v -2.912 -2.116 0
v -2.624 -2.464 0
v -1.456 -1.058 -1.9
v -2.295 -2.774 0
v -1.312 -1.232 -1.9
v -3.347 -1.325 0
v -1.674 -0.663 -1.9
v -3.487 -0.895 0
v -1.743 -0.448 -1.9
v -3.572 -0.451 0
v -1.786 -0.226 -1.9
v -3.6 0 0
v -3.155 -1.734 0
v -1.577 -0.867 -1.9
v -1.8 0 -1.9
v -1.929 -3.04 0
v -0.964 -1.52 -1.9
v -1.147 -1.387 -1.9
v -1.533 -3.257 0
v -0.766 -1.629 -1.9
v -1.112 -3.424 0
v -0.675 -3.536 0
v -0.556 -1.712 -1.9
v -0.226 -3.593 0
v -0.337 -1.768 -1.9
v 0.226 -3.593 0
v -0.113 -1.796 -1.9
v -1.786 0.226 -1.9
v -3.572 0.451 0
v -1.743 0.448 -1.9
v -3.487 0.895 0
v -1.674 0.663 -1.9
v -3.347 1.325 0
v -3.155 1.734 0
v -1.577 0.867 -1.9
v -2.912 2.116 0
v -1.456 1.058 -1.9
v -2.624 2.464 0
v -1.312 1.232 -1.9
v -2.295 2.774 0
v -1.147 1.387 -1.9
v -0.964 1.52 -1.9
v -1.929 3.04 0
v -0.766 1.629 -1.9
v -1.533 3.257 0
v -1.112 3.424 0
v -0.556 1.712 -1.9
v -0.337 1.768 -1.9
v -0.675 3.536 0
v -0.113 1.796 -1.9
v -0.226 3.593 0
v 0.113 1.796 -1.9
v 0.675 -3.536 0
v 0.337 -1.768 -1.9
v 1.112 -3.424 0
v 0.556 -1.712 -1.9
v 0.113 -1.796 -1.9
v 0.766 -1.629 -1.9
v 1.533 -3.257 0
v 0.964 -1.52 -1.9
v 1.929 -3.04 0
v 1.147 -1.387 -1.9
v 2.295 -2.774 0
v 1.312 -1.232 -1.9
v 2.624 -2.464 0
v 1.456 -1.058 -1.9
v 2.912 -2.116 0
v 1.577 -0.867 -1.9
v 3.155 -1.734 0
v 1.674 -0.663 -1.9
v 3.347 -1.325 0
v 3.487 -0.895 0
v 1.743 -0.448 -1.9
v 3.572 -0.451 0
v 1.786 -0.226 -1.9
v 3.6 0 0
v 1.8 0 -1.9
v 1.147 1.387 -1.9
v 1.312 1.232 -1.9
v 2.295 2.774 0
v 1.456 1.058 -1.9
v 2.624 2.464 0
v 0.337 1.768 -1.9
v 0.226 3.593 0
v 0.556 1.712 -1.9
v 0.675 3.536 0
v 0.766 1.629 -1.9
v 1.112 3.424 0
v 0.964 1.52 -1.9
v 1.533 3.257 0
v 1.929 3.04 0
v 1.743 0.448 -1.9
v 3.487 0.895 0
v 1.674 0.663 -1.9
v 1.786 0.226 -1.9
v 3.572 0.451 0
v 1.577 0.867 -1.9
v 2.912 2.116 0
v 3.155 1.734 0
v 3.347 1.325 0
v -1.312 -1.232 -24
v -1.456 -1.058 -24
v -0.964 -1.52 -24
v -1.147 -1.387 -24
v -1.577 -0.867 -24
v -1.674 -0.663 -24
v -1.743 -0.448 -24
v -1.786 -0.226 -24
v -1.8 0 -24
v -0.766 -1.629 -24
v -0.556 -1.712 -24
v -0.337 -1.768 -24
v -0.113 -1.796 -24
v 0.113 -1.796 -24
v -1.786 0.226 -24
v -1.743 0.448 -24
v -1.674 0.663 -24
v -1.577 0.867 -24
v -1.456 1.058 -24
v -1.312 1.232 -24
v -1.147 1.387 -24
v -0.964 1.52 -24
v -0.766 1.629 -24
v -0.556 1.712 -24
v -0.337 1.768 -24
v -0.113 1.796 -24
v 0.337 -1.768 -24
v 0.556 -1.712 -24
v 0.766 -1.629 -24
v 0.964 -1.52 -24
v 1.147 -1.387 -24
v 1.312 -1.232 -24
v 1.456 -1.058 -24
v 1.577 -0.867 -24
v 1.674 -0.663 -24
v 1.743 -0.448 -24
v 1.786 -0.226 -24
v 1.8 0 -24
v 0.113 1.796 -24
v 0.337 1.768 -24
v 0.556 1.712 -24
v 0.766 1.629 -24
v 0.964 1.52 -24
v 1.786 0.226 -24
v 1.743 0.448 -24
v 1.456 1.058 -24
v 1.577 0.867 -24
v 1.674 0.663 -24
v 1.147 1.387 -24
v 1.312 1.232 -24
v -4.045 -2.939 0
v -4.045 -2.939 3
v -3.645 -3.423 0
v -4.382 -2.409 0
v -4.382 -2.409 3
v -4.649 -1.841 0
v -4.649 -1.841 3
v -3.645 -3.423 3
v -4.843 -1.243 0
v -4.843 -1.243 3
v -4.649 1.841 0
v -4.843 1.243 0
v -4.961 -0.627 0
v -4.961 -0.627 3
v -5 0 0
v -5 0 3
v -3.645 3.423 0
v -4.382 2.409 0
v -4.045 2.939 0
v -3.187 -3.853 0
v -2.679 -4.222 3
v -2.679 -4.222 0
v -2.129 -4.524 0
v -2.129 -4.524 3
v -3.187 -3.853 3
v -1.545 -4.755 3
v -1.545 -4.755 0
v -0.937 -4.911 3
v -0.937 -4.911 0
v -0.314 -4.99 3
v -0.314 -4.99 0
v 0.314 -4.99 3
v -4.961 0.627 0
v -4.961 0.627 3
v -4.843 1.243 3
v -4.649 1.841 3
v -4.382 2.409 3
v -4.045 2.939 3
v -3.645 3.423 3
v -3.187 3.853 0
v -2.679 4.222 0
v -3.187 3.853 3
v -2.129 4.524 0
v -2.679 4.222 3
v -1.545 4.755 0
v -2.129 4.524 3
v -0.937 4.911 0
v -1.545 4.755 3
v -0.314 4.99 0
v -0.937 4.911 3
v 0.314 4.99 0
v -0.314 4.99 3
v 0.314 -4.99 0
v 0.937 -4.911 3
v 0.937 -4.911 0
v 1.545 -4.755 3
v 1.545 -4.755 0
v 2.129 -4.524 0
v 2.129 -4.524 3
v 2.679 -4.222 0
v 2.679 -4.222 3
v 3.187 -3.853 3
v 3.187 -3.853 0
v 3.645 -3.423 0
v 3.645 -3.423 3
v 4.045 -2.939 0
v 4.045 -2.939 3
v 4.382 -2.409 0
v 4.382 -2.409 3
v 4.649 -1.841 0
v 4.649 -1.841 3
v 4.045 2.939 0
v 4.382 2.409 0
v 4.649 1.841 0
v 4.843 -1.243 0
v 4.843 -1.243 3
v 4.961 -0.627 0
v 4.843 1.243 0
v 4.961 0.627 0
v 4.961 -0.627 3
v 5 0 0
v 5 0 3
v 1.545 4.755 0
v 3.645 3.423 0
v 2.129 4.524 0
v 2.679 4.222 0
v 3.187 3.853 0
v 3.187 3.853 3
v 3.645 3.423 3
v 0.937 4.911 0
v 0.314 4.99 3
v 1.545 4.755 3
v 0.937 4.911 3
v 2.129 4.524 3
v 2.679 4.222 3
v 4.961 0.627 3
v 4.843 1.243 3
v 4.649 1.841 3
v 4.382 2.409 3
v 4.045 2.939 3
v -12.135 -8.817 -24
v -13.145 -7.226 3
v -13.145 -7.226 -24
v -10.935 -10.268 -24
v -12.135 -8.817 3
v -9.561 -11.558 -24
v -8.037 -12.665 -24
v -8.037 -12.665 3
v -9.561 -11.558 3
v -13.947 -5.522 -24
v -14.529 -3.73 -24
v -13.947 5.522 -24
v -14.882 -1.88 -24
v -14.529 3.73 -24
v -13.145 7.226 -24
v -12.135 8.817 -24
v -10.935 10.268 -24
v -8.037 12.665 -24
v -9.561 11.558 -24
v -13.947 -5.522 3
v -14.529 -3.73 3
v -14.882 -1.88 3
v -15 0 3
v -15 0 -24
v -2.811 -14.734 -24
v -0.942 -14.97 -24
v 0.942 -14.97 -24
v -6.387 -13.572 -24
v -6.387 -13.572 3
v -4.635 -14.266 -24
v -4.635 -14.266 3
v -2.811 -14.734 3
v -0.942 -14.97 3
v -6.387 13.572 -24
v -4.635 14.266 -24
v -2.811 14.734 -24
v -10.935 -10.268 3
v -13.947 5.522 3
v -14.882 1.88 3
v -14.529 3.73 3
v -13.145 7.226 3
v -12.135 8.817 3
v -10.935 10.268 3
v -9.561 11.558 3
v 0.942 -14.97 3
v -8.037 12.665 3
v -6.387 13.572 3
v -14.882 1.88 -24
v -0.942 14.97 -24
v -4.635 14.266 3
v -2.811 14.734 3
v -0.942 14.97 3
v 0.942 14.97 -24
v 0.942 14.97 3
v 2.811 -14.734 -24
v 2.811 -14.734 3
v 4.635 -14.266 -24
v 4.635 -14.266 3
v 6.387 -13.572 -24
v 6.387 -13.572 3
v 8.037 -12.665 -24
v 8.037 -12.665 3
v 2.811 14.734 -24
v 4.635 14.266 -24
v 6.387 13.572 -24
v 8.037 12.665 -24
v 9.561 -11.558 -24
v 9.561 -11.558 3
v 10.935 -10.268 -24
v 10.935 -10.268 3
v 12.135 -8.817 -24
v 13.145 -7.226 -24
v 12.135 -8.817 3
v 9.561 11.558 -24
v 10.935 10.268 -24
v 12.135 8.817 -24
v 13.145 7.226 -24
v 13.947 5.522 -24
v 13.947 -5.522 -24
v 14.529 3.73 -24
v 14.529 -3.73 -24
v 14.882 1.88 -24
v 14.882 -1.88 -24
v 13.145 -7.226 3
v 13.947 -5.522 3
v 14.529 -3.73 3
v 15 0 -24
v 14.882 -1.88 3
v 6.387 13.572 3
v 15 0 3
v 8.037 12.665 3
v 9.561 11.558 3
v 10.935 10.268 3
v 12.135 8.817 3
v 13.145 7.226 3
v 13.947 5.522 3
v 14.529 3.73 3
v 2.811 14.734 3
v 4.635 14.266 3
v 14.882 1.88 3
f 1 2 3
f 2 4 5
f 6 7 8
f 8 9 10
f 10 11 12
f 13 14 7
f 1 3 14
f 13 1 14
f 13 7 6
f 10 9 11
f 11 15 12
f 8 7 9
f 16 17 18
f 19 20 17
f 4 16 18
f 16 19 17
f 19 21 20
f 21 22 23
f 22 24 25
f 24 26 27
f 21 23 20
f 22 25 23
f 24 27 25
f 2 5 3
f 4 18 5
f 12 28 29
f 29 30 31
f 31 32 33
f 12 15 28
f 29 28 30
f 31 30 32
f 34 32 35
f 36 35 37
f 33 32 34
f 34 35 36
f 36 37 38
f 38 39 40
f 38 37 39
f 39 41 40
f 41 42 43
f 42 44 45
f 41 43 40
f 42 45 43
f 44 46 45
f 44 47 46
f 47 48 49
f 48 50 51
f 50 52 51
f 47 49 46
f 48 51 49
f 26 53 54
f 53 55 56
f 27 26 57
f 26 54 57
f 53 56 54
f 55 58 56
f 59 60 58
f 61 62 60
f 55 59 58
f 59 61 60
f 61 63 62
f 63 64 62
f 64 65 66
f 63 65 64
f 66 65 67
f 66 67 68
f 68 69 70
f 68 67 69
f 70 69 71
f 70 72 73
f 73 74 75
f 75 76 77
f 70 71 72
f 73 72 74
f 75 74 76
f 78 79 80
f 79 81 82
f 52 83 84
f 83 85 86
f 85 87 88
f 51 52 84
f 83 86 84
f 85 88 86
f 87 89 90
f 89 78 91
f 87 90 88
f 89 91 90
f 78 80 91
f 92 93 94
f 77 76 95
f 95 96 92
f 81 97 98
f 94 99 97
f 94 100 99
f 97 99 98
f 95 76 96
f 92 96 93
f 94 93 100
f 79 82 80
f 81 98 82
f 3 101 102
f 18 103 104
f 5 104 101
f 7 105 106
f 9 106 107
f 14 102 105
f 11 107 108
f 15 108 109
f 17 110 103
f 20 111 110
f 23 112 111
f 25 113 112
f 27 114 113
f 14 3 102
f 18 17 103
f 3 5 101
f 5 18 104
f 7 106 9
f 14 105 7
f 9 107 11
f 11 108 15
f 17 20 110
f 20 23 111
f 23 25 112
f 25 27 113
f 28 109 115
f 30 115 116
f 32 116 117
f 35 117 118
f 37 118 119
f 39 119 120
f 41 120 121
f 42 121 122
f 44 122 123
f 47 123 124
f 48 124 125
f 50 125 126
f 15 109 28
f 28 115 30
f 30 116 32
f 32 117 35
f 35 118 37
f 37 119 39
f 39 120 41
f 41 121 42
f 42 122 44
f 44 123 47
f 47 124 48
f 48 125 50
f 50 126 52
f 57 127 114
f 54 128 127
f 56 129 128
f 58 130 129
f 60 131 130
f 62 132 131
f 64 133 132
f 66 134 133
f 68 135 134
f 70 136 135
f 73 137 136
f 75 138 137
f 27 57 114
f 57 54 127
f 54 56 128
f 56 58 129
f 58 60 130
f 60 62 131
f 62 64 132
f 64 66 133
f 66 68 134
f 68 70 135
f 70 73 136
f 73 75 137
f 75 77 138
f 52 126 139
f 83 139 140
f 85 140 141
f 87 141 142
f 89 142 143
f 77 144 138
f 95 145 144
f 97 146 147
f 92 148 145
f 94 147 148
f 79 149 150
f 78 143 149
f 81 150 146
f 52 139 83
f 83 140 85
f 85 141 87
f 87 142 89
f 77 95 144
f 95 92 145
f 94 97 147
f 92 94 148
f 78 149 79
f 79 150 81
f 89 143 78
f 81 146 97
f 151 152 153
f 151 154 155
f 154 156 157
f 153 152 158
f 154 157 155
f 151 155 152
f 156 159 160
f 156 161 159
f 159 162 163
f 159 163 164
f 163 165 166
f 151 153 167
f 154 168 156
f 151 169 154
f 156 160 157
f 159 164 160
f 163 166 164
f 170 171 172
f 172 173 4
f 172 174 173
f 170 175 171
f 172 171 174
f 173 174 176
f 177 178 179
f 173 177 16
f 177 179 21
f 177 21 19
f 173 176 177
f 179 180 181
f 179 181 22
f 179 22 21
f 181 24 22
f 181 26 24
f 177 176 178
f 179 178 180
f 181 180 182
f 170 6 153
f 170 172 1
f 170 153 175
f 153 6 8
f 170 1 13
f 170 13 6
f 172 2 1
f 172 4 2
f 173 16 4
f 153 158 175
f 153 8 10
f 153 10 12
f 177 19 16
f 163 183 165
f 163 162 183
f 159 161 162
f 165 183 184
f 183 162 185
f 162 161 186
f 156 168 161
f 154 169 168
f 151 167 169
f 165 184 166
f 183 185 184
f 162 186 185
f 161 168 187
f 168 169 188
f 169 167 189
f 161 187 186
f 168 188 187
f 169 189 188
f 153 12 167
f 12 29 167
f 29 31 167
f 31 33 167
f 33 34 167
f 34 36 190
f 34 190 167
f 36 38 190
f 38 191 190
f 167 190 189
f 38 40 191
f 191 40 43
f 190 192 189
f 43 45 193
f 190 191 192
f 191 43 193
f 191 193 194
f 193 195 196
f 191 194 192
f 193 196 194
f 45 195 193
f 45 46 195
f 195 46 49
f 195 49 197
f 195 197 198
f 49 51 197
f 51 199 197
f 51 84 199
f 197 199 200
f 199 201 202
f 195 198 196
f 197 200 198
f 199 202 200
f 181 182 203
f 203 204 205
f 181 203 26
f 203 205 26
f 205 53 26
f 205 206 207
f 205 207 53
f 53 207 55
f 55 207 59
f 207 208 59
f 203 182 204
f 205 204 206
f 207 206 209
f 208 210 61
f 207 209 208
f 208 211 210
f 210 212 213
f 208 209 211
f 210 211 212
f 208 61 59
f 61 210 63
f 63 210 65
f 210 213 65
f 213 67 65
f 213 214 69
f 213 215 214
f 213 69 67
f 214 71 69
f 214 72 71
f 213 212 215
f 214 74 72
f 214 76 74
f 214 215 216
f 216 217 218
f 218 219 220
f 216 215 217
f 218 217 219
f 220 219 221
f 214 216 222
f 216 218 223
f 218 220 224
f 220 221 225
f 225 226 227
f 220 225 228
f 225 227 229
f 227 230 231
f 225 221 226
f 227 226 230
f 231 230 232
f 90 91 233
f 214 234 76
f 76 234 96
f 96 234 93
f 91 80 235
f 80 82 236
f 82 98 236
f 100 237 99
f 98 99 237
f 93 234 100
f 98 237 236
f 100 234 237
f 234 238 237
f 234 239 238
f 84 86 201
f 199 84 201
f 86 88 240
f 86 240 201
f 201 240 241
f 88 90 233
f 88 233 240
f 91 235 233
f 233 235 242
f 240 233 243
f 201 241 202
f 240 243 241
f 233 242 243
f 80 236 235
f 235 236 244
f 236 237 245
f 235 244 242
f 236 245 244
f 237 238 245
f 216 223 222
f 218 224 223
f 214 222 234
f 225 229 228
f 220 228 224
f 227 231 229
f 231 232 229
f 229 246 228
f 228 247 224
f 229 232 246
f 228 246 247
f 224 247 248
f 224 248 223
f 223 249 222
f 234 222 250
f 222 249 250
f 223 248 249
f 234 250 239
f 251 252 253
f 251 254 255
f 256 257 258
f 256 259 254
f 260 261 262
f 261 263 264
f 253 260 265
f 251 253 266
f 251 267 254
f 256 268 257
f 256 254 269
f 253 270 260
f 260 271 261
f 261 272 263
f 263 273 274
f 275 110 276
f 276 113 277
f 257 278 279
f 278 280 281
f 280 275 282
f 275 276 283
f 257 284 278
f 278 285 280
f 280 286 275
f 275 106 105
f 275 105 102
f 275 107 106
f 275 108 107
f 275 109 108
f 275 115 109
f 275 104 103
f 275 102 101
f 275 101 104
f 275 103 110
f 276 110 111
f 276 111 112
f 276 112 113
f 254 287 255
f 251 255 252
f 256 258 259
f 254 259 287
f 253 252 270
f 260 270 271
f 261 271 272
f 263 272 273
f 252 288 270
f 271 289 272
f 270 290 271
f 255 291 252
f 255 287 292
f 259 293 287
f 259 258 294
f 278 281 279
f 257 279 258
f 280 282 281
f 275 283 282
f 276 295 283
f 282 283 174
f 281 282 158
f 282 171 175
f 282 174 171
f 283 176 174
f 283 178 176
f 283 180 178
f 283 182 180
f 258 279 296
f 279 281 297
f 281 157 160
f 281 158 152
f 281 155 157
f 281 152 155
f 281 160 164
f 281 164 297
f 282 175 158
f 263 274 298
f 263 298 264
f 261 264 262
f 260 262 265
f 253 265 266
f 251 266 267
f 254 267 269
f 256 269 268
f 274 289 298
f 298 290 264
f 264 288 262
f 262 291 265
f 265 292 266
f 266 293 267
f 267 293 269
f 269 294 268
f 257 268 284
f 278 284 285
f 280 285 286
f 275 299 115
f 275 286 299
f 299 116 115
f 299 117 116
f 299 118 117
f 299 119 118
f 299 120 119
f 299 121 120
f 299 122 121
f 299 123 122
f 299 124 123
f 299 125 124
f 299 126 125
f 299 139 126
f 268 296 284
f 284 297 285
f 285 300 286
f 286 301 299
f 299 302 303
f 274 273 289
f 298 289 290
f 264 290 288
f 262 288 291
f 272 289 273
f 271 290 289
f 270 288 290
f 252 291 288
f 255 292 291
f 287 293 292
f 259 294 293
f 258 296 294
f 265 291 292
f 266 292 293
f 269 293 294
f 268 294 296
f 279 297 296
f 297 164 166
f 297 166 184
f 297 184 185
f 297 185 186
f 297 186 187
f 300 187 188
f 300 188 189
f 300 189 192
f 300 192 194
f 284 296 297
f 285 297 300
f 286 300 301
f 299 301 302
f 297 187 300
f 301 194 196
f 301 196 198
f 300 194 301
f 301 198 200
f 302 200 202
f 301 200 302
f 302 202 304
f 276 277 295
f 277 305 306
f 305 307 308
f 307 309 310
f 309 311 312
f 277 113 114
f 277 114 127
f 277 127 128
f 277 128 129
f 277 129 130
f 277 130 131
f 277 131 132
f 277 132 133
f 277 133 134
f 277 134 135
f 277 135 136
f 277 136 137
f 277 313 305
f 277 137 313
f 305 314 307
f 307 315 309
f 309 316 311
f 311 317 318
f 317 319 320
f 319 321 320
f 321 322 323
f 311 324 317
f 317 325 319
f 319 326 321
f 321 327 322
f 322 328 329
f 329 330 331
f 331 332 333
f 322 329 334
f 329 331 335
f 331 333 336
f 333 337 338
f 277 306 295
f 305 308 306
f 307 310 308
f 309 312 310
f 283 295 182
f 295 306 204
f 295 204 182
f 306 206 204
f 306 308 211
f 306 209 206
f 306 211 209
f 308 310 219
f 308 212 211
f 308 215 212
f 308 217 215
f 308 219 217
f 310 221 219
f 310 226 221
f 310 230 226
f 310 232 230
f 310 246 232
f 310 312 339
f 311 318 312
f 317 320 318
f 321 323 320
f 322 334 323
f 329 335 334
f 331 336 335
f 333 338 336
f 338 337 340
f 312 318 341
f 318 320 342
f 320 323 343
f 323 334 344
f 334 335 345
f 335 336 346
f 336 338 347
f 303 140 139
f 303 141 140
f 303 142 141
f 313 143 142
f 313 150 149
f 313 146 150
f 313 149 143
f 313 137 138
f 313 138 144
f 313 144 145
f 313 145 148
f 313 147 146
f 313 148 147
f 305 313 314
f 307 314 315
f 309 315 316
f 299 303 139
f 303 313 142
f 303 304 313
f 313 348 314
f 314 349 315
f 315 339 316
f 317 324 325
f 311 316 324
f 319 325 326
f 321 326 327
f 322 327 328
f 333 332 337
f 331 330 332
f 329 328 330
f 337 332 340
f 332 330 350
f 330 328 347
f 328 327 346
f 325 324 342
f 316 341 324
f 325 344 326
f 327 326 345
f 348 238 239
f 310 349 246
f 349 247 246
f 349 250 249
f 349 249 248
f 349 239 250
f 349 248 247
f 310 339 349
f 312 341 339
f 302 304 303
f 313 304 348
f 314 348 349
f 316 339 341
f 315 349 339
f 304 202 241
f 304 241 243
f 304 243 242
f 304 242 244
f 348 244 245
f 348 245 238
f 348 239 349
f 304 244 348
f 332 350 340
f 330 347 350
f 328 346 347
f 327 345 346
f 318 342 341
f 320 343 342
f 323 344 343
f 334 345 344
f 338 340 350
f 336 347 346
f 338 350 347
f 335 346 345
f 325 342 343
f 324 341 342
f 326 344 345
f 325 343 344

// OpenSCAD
$fn = 50;

difference() {
	union() {
		translate(v = [0, 0, -24.0]) {
			cylinder(h = 27, r = 15.0);
		}
	}
	union() {
		translate(v = [0, 0, 0]) {
			rotate(a = [0, 0, 0]) {
				difference() {
					union() {
						translate(v = [0, 0, -27.0]) {
							cylinder(h = 27, r = 1.5);
						}
						translate(v = [0, 0, -1.9]) {
							cylinder(h = 1.9, r1 = 1.8, r2 = 3.6);
						}
						translate(v = [0, 0, -27.0]) {
							cylinder(h = 27, r = 1.8);
						}
						translate(v = [0, 0, -27.0]) {
							cylinder(h = 27, r = 1.5);
						}
					}
					union();
				}
			}
		}
		#cylinder(h = 3, r = 5.0);
	}
}
